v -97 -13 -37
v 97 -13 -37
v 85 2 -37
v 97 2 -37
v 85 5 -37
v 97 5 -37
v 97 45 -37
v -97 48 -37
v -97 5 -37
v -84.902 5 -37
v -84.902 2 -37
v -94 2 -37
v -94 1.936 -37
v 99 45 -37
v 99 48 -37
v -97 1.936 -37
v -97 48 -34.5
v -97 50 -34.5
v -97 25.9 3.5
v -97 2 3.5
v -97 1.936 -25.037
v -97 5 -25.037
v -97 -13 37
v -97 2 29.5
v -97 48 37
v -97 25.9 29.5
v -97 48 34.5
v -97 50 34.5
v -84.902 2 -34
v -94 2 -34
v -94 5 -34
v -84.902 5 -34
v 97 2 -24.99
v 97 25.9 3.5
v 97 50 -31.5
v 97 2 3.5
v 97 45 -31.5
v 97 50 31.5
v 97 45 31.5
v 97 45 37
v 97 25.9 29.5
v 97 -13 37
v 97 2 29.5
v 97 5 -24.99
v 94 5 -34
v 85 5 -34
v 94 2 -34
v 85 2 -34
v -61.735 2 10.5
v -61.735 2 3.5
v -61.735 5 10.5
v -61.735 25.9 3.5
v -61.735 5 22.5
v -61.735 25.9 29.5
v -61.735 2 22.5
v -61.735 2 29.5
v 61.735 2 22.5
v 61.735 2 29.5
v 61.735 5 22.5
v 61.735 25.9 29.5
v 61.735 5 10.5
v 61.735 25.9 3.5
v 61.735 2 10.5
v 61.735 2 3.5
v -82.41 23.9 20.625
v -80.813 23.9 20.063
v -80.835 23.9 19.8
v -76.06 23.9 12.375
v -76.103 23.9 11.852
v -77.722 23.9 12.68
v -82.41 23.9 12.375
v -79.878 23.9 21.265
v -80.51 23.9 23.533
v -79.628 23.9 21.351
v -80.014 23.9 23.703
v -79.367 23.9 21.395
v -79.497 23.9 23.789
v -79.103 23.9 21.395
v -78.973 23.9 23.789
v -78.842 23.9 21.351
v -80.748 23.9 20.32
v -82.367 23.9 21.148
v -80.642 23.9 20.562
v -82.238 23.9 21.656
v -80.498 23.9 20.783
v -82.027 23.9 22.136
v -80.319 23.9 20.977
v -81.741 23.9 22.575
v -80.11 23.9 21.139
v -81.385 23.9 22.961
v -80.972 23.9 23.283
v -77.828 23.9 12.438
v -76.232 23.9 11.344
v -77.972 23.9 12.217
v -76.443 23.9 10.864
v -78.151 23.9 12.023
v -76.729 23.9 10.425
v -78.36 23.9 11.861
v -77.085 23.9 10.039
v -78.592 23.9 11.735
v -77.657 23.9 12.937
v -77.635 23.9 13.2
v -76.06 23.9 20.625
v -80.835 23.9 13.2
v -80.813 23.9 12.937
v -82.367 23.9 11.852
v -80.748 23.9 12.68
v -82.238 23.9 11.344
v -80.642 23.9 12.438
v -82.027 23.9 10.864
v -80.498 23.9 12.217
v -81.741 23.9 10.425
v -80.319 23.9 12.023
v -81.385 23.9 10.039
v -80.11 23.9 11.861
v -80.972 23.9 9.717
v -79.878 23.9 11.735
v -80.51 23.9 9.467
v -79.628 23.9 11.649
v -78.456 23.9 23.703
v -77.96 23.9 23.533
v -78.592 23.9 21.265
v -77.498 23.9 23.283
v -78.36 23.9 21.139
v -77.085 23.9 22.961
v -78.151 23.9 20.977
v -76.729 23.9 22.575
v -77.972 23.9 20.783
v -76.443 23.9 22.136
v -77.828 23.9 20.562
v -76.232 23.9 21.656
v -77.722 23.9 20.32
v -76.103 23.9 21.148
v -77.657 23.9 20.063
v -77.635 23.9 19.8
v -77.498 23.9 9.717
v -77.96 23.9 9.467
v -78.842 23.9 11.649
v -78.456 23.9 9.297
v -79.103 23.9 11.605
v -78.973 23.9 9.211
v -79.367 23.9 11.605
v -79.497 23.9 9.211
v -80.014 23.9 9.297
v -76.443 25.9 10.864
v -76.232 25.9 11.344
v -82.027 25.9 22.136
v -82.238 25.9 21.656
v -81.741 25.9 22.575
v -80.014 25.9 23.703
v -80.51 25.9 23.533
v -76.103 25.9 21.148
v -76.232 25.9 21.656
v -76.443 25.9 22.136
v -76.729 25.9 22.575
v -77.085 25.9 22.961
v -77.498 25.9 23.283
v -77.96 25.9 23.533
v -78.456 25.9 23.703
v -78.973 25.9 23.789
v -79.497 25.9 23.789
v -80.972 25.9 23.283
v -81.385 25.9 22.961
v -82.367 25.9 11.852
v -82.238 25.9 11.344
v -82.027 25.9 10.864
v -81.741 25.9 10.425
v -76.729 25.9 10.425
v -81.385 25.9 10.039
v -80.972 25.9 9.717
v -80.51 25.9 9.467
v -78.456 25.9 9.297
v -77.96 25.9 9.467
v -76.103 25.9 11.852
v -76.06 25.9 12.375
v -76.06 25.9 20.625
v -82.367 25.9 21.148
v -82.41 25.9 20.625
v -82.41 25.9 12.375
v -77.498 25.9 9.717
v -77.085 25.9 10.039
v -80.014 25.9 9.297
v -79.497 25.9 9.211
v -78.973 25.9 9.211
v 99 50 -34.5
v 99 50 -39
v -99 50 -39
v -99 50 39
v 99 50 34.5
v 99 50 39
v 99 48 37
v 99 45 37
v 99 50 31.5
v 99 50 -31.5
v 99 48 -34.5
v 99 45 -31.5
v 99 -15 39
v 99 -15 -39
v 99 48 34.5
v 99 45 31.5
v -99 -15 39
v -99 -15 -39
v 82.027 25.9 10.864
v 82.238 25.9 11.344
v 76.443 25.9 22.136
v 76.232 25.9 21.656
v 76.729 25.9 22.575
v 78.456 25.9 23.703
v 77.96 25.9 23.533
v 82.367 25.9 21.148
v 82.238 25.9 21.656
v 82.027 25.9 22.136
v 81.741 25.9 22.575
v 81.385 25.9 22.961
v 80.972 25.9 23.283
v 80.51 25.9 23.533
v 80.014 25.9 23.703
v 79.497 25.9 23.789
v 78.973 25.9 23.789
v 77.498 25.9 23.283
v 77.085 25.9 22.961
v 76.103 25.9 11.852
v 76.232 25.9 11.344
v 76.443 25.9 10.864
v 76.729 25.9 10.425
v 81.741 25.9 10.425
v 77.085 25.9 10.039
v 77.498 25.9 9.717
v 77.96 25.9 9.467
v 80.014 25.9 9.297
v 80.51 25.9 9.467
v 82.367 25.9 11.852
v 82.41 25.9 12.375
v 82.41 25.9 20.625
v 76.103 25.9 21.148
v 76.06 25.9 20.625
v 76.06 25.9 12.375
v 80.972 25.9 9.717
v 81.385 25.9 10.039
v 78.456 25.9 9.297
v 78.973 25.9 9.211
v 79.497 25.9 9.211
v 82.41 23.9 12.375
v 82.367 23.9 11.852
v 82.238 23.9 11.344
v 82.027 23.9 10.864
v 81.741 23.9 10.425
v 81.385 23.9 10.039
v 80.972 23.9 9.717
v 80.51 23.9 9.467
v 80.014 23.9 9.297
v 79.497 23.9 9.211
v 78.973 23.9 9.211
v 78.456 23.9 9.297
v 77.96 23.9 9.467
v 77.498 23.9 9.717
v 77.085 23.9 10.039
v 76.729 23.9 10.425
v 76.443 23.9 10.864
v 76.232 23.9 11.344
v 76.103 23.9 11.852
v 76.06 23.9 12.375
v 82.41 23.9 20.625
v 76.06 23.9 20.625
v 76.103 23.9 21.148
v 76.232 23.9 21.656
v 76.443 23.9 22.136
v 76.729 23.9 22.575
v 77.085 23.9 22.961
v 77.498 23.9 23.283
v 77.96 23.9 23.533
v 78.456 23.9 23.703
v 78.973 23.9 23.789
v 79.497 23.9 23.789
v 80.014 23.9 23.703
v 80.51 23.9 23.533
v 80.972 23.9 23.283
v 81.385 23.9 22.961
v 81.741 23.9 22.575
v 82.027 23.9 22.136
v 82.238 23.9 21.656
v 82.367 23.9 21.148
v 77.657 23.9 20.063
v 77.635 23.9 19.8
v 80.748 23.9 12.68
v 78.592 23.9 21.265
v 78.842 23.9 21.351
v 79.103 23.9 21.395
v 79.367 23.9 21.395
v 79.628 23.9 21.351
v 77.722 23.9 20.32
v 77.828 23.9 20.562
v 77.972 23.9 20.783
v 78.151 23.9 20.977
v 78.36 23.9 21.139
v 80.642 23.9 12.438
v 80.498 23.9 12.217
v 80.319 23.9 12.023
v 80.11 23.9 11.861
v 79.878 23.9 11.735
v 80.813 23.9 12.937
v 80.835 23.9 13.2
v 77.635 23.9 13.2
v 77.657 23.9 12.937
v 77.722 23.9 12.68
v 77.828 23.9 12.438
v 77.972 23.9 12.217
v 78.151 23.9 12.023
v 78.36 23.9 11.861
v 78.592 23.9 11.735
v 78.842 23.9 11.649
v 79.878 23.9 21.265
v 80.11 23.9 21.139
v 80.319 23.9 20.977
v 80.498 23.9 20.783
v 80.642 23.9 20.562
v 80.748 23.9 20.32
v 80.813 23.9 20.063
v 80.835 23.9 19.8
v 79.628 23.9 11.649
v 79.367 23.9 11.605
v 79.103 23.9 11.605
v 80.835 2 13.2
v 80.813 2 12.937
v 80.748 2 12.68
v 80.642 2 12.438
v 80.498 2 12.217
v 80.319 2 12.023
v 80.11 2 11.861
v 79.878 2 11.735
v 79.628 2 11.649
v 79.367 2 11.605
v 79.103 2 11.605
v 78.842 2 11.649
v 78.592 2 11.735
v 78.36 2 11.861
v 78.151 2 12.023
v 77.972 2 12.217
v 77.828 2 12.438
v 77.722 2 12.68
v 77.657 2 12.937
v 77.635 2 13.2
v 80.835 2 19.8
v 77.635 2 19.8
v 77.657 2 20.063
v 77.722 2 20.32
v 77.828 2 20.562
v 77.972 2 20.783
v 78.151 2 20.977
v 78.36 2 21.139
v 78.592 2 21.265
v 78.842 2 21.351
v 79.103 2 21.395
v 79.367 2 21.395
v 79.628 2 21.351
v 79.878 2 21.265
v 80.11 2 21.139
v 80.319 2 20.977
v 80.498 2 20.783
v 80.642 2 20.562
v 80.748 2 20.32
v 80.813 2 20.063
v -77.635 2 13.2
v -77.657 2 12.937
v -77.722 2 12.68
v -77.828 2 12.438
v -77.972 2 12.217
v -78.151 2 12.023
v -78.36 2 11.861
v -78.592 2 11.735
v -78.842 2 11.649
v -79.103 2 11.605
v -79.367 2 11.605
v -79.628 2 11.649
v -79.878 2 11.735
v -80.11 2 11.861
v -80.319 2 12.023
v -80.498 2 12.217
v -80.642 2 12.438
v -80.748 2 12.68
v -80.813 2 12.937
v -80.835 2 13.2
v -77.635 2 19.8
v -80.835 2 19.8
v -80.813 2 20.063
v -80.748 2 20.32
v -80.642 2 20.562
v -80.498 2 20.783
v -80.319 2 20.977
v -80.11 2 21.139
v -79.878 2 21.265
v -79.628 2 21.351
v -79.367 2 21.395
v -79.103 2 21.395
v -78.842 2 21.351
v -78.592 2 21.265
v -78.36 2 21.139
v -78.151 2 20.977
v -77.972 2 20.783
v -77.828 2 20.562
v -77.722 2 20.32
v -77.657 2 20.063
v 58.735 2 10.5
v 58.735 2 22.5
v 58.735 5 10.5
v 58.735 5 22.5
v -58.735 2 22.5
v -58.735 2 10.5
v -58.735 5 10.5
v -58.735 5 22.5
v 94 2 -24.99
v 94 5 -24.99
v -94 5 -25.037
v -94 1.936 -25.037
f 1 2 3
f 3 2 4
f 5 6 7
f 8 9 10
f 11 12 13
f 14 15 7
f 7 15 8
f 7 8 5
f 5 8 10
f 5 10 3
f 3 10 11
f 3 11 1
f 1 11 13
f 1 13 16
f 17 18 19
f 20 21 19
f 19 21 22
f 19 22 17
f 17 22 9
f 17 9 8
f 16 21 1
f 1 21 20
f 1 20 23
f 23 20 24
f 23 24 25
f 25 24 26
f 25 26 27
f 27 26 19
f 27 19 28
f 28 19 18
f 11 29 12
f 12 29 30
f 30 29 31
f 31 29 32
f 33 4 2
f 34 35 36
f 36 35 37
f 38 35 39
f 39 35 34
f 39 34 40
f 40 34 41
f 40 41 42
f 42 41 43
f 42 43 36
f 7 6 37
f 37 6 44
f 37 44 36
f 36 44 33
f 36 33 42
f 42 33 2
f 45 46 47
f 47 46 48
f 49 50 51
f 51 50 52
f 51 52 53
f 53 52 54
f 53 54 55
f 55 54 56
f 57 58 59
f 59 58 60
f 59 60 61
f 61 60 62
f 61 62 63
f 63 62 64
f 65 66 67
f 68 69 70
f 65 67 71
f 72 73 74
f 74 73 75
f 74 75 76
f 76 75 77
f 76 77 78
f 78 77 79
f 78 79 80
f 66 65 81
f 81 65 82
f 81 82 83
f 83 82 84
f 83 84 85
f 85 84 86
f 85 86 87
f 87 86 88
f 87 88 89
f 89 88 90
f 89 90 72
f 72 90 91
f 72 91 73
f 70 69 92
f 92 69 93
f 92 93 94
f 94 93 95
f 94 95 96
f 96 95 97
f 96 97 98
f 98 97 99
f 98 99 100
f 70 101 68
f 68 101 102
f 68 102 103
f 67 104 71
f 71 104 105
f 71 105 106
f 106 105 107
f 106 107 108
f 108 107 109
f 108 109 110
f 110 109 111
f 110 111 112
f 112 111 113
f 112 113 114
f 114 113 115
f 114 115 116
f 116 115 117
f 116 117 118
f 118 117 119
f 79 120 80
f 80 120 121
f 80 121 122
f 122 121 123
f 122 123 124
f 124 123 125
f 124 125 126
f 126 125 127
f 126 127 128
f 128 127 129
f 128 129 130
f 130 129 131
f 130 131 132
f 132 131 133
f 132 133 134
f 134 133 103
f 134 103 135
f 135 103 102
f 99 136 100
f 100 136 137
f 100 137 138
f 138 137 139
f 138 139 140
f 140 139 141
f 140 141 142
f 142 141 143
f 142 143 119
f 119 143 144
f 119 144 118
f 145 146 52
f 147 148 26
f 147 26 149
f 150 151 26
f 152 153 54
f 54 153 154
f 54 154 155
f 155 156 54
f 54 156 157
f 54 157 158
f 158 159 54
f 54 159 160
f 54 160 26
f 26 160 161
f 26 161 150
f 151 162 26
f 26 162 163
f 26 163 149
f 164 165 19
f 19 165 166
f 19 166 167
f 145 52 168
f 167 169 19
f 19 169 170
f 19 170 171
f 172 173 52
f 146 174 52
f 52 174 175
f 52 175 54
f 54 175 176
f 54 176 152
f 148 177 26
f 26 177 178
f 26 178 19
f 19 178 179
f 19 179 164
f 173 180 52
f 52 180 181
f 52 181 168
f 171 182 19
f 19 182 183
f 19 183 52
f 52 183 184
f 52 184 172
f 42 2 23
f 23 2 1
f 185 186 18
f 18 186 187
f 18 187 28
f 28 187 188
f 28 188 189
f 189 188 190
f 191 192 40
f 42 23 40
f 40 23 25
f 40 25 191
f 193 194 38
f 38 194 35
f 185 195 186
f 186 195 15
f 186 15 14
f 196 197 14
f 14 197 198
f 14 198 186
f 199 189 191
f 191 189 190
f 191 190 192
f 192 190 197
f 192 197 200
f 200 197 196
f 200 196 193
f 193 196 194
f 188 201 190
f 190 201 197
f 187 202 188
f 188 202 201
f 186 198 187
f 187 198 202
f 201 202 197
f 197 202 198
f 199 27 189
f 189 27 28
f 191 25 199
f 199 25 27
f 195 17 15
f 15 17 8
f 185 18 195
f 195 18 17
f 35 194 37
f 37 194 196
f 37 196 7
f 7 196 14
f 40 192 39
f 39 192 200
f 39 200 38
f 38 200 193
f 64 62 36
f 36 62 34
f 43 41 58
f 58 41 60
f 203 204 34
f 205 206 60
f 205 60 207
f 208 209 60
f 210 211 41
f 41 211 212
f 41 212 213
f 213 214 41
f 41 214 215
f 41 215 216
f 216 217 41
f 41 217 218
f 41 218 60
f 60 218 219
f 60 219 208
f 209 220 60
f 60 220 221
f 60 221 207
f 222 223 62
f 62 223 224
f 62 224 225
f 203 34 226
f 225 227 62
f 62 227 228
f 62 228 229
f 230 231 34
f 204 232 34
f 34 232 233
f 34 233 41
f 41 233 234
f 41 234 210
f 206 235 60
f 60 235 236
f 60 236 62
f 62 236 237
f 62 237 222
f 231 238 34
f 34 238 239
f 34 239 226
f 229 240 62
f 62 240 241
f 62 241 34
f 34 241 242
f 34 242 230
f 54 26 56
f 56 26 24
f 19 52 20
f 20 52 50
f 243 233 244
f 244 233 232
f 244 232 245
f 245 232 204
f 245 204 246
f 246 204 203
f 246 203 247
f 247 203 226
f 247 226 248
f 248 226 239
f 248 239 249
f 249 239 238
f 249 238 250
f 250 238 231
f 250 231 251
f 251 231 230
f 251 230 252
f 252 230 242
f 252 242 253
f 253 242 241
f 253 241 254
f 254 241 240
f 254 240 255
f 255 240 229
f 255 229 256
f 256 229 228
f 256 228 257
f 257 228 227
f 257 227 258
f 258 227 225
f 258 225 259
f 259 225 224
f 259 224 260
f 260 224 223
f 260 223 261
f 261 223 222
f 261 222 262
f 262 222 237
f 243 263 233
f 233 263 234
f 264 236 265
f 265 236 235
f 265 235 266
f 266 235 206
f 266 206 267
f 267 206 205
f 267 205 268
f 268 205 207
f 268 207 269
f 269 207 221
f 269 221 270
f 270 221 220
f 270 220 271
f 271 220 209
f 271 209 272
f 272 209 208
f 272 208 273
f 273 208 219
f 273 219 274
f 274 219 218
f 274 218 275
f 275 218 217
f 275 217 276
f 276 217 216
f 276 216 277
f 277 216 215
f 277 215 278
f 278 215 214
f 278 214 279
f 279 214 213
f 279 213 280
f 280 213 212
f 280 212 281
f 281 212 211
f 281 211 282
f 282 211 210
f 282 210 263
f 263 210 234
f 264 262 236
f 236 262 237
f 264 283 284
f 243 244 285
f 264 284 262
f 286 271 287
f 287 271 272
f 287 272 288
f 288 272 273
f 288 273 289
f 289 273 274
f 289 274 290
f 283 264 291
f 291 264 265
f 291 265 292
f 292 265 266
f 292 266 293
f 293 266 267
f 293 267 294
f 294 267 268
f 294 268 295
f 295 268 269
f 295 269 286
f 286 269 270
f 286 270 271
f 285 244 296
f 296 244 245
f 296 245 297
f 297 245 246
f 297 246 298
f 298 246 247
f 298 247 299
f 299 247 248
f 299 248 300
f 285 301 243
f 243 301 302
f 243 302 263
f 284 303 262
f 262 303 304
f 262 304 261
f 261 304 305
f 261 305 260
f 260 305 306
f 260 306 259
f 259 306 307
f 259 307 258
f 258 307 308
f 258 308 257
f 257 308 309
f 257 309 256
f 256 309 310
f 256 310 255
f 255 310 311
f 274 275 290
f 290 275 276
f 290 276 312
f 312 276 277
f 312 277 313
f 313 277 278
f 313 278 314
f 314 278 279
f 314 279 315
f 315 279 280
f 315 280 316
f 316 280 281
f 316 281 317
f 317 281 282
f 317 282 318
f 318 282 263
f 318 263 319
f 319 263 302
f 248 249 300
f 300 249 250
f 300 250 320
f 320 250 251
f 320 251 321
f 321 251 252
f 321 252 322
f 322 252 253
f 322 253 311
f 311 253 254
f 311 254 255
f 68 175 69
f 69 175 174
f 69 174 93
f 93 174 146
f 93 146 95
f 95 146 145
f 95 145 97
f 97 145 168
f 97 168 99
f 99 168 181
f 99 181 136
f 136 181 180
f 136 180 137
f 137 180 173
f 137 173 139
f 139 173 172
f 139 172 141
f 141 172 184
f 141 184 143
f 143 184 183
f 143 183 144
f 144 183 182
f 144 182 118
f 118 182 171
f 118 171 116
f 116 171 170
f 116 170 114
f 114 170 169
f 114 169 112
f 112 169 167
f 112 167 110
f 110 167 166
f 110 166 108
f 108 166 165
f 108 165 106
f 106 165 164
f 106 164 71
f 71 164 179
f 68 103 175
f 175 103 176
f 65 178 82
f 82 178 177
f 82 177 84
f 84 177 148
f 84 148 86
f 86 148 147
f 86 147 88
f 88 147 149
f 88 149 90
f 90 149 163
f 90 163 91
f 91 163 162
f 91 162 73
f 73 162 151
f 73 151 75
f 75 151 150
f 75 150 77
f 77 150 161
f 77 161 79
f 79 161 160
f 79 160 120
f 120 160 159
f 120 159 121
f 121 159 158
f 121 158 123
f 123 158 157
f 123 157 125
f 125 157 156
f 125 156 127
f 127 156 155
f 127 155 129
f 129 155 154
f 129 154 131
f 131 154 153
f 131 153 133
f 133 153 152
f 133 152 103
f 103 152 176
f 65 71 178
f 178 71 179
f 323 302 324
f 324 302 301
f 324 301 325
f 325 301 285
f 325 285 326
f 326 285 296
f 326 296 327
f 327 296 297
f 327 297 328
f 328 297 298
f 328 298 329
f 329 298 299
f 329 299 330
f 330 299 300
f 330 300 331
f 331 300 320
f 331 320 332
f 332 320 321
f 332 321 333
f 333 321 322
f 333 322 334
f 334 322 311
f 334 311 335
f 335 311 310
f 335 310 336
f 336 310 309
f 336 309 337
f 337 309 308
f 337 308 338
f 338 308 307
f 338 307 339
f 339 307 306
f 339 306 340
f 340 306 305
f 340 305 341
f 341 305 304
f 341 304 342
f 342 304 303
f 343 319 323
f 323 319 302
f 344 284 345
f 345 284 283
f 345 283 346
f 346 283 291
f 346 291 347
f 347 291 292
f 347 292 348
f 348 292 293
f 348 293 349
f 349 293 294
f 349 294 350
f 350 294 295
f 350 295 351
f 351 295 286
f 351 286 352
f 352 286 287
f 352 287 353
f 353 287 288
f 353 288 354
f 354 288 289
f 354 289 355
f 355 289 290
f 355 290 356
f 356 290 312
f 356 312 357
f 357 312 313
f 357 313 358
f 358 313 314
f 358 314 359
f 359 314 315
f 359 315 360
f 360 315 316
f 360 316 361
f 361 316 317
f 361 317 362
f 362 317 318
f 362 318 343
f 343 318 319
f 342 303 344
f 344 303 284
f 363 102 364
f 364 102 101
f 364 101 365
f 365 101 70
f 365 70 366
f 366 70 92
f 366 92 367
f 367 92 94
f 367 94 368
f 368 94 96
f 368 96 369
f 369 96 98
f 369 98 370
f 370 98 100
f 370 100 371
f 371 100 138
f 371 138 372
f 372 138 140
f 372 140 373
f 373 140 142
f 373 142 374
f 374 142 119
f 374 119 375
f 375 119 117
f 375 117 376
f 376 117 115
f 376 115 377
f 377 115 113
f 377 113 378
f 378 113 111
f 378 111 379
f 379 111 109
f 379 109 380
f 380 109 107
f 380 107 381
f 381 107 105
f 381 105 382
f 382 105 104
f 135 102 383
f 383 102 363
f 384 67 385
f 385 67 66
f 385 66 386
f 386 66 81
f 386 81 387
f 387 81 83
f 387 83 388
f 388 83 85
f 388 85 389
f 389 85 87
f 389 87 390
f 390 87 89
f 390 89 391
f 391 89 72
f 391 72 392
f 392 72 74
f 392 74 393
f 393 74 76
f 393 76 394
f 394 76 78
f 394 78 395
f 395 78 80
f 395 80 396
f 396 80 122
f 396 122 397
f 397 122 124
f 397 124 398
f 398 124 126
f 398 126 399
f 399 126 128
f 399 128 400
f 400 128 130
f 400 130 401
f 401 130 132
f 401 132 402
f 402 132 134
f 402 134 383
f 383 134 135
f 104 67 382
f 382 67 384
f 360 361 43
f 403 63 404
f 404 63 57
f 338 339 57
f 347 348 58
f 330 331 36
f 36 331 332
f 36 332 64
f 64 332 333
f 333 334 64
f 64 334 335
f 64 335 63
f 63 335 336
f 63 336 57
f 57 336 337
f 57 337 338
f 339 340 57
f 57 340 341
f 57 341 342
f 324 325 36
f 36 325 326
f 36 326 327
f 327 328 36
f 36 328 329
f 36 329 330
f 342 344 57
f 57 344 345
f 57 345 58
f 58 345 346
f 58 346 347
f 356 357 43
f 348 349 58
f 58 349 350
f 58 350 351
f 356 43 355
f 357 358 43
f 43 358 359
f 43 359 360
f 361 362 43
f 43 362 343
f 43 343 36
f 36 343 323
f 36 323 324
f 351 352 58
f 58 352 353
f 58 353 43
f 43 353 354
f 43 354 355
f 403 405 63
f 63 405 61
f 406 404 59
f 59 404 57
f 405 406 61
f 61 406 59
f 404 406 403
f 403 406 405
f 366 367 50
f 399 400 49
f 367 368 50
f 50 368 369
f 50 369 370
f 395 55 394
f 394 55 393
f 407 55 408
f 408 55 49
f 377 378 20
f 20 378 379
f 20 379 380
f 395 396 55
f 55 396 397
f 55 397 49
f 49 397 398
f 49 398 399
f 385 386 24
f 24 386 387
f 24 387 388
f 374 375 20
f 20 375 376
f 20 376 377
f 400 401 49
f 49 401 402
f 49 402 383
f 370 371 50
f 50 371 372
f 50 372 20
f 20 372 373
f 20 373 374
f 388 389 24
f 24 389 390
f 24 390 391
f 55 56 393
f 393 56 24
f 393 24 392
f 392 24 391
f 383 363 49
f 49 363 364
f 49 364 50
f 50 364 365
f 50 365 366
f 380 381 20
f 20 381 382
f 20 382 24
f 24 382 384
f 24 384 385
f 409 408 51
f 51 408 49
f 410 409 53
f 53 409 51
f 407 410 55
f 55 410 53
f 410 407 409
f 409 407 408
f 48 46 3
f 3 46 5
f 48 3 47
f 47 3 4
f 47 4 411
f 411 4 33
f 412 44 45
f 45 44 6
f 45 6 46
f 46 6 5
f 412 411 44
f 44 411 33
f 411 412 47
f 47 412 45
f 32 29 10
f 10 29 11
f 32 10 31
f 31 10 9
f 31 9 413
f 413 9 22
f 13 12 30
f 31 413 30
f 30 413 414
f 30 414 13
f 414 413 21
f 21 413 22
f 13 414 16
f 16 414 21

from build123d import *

# Parameters (mm, degrees)
SKETCH2_W                = 198
SKETCH2_H                = 78
BOSS_EXTRUDE1_DEPTH      = 50
BOSS_EXTRUDE1_DEPTH_BACK = 15
SHELL1_T                 = -2
BOSS_EXTRUDE2_REACH      = 198
SKETCH3_W                = 2.5
SKETCH3_H                = 2
CUT_EXTRUDE1_REACH       = 4
CROQUIS1_W               = 35.265
CROQUIS1_H               = 26
SALIENTE_EXTRUIR1_DEPTH  = 38.9
CORTAR_EXTRUIR1_DEPTH    = 2
CORTAR_EXTRUIR2_DEPTH    = 30
CROQUIS5_W               = 26
CROQUIS5_H               = 15
CORTAR_EXTRUIR3_DEPTH    = 35.265
CROQUIS6_W               = 12
CROQUIS6_H               = 3
SALIENTE_EXTRUIR2_DEPTH  = 3
CROQUIS7_W               = 26
CROQUIS7_H               = 15
CORTAR_EXTRUIR4_DEPTH    = 35.265
CROQUIS8_W               = 12
CROQUIS8_H               = 3
SALIENTE_EXTRUIR4_DEPTH  = 3
CROQUIS10_W              = 12.009872988
CROQUIS10_H              = 3
SALIENTE_EXTRUIR5_DEPTH  = 3
CROQUIS11_W              = 12.098159715
CROQUIS11_H              = 3
SALIENTE_EXTRUIR6_DEPTH  = 3
CROQUIS12_W              = 11.962837464
CROQUIS12_H              = 3.064497362
SALIENTE_EXTRUIR7_DEPTH  = 3


with BuildPart() as part:
    # Sketch2 → Boss-Extrude1 (new body, two sides)
    with BuildSketch(Plane(origin=(0, 0, 0), x_dir=(1, 0, 0), z_dir=(0, 1, 0))) as boss_extrude1_sk:
        Rectangle(SKETCH2_W, SKETCH2_H)
    extrude(amount=BOSS_EXTRUDE1_DEPTH)
    extrude(boss_extrude1_sk.sketch, amount=-BOSS_EXTRUDE1_DEPTH_BACK)

    # Shell1
    shell1_openings = [part.faces().sort_by_distance(p)[0] for p in [
        (0, 50, 0),
    ]]
    offset(amount=SHELL1_T, openings=shell1_openings, kind=Kind.INTERSECTION)

    # Sketch3 → Boss-Extrude2 (add, up to next)
    with BuildSketch(Plane(origin=(-97, 0, 0), x_dir=(0, 0, -1), z_dir=(1, 0, 0)), mode=Mode.PRIVATE) as boss_extrude2_sk1:
        with Locations((-35.75, 49)):
            Rectangle(SKETCH3_W, SKETCH3_H)
    boss_extrude2_tool1 = extrude(boss_extrude2_sk1.sketch, amount=BOSS_EXTRUDE2_REACH, mode=Mode.PRIVATE) - part.part
    add(boss_extrude2_tool1.solids().sort_by_distance((-97, 49, 35.75))[0])
    # Sketch3 → Boss-Extrude2 (add, up to next)
    with BuildSketch(Plane(origin=(-97, 0, 0), x_dir=(0, 0, -1), z_dir=(1, 0, 0)), mode=Mode.PRIVATE) as boss_extrude2_sk2:
        with Locations((35.75, 49)):
            Rectangle(SKETCH3_W, SKETCH3_H)
    boss_extrude2_tool2 = extrude(boss_extrude2_sk2.sketch, amount=BOSS_EXTRUDE2_REACH, mode=Mode.PRIVATE) - part.part
    add(boss_extrude2_tool2.solids().sort_by_distance((-97, 49, -35.75))[0])

    # Sketch4 → Cut-Extrude1 (cut, up to next)
    with BuildSketch(Plane.ZY.offset(-97), mode=Mode.PRIVATE) as cut_extrude1_sk1:
        Polygon((-37, 48), (-37, 45), (-31.5, 45), (-31.5, 50), (-34.5, 50), (-34.5, 48), align=None)
    cut_extrude1_tool1 = extrude(cut_extrude1_sk1.sketch, amount=-CUT_EXTRUDE1_REACH, mode=Mode.PRIVATE) & part.part
    add(cut_extrude1_tool1.solids().sort_by_distance((97, 47.166667, -33.916667))[0], mode=Mode.SUBTRACT)
    # Sketch4 → Cut-Extrude1 (cut, up to next)
    with BuildSketch(Plane.ZY.offset(-97), mode=Mode.PRIVATE) as cut_extrude1_sk2:
        Polygon((34.5, 48), (37, 48), (37, 45), (31.5, 45), (31.5, 50), (34.5, 50), align=None)
    cut_extrude1_tool2 = extrude(cut_extrude1_sk2.sketch, amount=-CUT_EXTRUDE1_REACH, mode=Mode.PRIVATE) & part.part
    add(cut_extrude1_tool2.solids().sort_by_distance((97, 47.166667, 33.916667))[0], mode=Mode.SUBTRACT)

    # Croquis1 → Saliente-Extruir1 (add)
    with BuildSketch(Plane(origin=(0, -13, 0), x_dir=(1, 0, 0), z_dir=(0, 1, 0))):
        with Locations((79.3675, -16.5)):
            Rectangle(CROQUIS1_W, CROQUIS1_H)
    saliente_extruir1 = extrude(amount=SALIENTE_EXTRUIR1_DEPTH)

    # Simetría1: Saliente-Extruir1 across plane
    add(saliente_extruir1.mirror(Plane(origin=(0, 0, 0), x_dir=(0, 0, 1), z_dir=(1, 0, 0))))

    # Croquis2 → Cortar-Extruir1 (cut)
    with BuildSketch(Plane(origin=(0, 25.9, 0), x_dir=(1, 0, 0), z_dir=(0, 1, 0))):
        with BuildLine():
            Line((82.41, -12.375), (82.41, -20.625))
            ThreePointArc((82.41, -20.625), (79.235, -23.8), (76.06, -20.625))
            Line((76.06, -20.625), (76.06, -12.375))
            ThreePointArc((76.06, -12.375), (79.235, -9.2), (82.41, -12.375))
        make_face()
    cortar_extruir1 = extrude(amount=-CORTAR_EXTRUIR1_DEPTH, mode=Mode.SUBTRACT)

    # Simetría2: Cortar-Extruir1 across plane
    add(cortar_extruir1.mirror(Plane(origin=(0, 0, 0), x_dir=(0, 0, 1), z_dir=(1, 0, 0))), mode=Mode.SUBTRACT)

    # Croquis3 → Cortar-Extruir2 (cut)
    with BuildSketch(Plane(origin=(0, 23.9, 0), x_dir=(1, 0, 0), z_dir=(0, 1, 0))):
        with BuildLine():
            Line((80.835, -13.2), (80.835, -19.8))
            ThreePointArc((80.835, -19.8), (79.235, -21.4), (77.635, -19.8))
            Line((77.635, -19.8), (77.635, -13.2))
            ThreePointArc((77.635, -13.2), (79.235, -11.6), (80.835, -13.2))
        make_face()
    cortar_extruir2 = extrude(amount=-CORTAR_EXTRUIR2_DEPTH, mode=Mode.SUBTRACT)

    # Simetría3: Cortar-Extruir2 across plane
    add(cortar_extruir2.mirror(Plane(origin=(0, 0, 0), x_dir=(0, 0, 1), z_dir=(1, 0, 0))), mode=Mode.SUBTRACT)

    # Croquis5 → Cortar-Extruir3 (cut)
    with BuildSketch(Plane.ZY.offset(-61.735)):
        with Locations((16.5, -5.5)):
            Rectangle(CROQUIS5_W, CROQUIS5_H)
    extrude(amount=-CORTAR_EXTRUIR3_DEPTH, mode=Mode.SUBTRACT)

    # Croquis6 → Saliente-Extruir2 (add)
    with BuildSketch(Plane.ZY.offset(-61.735)):
        with Locations((16.5, 3.5)):
            Rectangle(CROQUIS6_W, CROQUIS6_H)
    saliente_extruir2 = extrude(amount=SALIENTE_EXTRUIR2_DEPTH)

    # Croquis7 → Cortar-Extruir4 (cut)
    with BuildSketch(Plane(origin=(-61.735, 0, 0), x_dir=(0, 0, -1), z_dir=(1, 0, 0))):
        with Locations((-16.5, -5.5)):
            Rectangle(CROQUIS7_W, CROQUIS7_H)
    extrude(amount=-CORTAR_EXTRUIR4_DEPTH, mode=Mode.SUBTRACT)

    # Simetría7: Saliente-Extruir2 across plane
    add(saliente_extruir2.mirror(Plane(origin=(0, 0, 0), x_dir=(0, 0, 1), z_dir=(1, 0, 0))))

    # Croquis8 → Saliente-Extruir4 (add)
    with BuildSketch(Plane.XY.offset(-37)):
        with Locations((91, 3.5)):
            Rectangle(CROQUIS8_W, CROQUIS8_H)
    extrude(amount=SALIENTE_EXTRUIR4_DEPTH)

    # Croquis10 → Saliente-Extruir5 (add)
    with BuildSketch(Plane.ZY.offset(-97)):
        with Locations((-30.995063506, 3.5)):
            Rectangle(CROQUIS10_W, CROQUIS10_H)
    extrude(amount=SALIENTE_EXTRUIR5_DEPTH)

    # Croquis11 → Saliente-Extruir6 (add)
    with BuildSketch(Plane.XY.offset(-37)):
        with Locations((-90.950920142, 3.5)):
            Rectangle(CROQUIS11_W, CROQUIS11_H)
    extrude(amount=SALIENTE_EXTRUIR6_DEPTH)

    # Croquis12 → Saliente-Extruir7 (add)
    with BuildSketch(Plane(origin=(-97, 0, 0), x_dir=(0, 0, -1), z_dir=(1, 0, 0))):
        with Locations((31.018581268, 3.467751319)):
            Rectangle(CROQUIS12_W, CROQUIS12_H)
    extrude(amount=SALIENTE_EXTRUIR7_DEPTH)


solid = part.part
